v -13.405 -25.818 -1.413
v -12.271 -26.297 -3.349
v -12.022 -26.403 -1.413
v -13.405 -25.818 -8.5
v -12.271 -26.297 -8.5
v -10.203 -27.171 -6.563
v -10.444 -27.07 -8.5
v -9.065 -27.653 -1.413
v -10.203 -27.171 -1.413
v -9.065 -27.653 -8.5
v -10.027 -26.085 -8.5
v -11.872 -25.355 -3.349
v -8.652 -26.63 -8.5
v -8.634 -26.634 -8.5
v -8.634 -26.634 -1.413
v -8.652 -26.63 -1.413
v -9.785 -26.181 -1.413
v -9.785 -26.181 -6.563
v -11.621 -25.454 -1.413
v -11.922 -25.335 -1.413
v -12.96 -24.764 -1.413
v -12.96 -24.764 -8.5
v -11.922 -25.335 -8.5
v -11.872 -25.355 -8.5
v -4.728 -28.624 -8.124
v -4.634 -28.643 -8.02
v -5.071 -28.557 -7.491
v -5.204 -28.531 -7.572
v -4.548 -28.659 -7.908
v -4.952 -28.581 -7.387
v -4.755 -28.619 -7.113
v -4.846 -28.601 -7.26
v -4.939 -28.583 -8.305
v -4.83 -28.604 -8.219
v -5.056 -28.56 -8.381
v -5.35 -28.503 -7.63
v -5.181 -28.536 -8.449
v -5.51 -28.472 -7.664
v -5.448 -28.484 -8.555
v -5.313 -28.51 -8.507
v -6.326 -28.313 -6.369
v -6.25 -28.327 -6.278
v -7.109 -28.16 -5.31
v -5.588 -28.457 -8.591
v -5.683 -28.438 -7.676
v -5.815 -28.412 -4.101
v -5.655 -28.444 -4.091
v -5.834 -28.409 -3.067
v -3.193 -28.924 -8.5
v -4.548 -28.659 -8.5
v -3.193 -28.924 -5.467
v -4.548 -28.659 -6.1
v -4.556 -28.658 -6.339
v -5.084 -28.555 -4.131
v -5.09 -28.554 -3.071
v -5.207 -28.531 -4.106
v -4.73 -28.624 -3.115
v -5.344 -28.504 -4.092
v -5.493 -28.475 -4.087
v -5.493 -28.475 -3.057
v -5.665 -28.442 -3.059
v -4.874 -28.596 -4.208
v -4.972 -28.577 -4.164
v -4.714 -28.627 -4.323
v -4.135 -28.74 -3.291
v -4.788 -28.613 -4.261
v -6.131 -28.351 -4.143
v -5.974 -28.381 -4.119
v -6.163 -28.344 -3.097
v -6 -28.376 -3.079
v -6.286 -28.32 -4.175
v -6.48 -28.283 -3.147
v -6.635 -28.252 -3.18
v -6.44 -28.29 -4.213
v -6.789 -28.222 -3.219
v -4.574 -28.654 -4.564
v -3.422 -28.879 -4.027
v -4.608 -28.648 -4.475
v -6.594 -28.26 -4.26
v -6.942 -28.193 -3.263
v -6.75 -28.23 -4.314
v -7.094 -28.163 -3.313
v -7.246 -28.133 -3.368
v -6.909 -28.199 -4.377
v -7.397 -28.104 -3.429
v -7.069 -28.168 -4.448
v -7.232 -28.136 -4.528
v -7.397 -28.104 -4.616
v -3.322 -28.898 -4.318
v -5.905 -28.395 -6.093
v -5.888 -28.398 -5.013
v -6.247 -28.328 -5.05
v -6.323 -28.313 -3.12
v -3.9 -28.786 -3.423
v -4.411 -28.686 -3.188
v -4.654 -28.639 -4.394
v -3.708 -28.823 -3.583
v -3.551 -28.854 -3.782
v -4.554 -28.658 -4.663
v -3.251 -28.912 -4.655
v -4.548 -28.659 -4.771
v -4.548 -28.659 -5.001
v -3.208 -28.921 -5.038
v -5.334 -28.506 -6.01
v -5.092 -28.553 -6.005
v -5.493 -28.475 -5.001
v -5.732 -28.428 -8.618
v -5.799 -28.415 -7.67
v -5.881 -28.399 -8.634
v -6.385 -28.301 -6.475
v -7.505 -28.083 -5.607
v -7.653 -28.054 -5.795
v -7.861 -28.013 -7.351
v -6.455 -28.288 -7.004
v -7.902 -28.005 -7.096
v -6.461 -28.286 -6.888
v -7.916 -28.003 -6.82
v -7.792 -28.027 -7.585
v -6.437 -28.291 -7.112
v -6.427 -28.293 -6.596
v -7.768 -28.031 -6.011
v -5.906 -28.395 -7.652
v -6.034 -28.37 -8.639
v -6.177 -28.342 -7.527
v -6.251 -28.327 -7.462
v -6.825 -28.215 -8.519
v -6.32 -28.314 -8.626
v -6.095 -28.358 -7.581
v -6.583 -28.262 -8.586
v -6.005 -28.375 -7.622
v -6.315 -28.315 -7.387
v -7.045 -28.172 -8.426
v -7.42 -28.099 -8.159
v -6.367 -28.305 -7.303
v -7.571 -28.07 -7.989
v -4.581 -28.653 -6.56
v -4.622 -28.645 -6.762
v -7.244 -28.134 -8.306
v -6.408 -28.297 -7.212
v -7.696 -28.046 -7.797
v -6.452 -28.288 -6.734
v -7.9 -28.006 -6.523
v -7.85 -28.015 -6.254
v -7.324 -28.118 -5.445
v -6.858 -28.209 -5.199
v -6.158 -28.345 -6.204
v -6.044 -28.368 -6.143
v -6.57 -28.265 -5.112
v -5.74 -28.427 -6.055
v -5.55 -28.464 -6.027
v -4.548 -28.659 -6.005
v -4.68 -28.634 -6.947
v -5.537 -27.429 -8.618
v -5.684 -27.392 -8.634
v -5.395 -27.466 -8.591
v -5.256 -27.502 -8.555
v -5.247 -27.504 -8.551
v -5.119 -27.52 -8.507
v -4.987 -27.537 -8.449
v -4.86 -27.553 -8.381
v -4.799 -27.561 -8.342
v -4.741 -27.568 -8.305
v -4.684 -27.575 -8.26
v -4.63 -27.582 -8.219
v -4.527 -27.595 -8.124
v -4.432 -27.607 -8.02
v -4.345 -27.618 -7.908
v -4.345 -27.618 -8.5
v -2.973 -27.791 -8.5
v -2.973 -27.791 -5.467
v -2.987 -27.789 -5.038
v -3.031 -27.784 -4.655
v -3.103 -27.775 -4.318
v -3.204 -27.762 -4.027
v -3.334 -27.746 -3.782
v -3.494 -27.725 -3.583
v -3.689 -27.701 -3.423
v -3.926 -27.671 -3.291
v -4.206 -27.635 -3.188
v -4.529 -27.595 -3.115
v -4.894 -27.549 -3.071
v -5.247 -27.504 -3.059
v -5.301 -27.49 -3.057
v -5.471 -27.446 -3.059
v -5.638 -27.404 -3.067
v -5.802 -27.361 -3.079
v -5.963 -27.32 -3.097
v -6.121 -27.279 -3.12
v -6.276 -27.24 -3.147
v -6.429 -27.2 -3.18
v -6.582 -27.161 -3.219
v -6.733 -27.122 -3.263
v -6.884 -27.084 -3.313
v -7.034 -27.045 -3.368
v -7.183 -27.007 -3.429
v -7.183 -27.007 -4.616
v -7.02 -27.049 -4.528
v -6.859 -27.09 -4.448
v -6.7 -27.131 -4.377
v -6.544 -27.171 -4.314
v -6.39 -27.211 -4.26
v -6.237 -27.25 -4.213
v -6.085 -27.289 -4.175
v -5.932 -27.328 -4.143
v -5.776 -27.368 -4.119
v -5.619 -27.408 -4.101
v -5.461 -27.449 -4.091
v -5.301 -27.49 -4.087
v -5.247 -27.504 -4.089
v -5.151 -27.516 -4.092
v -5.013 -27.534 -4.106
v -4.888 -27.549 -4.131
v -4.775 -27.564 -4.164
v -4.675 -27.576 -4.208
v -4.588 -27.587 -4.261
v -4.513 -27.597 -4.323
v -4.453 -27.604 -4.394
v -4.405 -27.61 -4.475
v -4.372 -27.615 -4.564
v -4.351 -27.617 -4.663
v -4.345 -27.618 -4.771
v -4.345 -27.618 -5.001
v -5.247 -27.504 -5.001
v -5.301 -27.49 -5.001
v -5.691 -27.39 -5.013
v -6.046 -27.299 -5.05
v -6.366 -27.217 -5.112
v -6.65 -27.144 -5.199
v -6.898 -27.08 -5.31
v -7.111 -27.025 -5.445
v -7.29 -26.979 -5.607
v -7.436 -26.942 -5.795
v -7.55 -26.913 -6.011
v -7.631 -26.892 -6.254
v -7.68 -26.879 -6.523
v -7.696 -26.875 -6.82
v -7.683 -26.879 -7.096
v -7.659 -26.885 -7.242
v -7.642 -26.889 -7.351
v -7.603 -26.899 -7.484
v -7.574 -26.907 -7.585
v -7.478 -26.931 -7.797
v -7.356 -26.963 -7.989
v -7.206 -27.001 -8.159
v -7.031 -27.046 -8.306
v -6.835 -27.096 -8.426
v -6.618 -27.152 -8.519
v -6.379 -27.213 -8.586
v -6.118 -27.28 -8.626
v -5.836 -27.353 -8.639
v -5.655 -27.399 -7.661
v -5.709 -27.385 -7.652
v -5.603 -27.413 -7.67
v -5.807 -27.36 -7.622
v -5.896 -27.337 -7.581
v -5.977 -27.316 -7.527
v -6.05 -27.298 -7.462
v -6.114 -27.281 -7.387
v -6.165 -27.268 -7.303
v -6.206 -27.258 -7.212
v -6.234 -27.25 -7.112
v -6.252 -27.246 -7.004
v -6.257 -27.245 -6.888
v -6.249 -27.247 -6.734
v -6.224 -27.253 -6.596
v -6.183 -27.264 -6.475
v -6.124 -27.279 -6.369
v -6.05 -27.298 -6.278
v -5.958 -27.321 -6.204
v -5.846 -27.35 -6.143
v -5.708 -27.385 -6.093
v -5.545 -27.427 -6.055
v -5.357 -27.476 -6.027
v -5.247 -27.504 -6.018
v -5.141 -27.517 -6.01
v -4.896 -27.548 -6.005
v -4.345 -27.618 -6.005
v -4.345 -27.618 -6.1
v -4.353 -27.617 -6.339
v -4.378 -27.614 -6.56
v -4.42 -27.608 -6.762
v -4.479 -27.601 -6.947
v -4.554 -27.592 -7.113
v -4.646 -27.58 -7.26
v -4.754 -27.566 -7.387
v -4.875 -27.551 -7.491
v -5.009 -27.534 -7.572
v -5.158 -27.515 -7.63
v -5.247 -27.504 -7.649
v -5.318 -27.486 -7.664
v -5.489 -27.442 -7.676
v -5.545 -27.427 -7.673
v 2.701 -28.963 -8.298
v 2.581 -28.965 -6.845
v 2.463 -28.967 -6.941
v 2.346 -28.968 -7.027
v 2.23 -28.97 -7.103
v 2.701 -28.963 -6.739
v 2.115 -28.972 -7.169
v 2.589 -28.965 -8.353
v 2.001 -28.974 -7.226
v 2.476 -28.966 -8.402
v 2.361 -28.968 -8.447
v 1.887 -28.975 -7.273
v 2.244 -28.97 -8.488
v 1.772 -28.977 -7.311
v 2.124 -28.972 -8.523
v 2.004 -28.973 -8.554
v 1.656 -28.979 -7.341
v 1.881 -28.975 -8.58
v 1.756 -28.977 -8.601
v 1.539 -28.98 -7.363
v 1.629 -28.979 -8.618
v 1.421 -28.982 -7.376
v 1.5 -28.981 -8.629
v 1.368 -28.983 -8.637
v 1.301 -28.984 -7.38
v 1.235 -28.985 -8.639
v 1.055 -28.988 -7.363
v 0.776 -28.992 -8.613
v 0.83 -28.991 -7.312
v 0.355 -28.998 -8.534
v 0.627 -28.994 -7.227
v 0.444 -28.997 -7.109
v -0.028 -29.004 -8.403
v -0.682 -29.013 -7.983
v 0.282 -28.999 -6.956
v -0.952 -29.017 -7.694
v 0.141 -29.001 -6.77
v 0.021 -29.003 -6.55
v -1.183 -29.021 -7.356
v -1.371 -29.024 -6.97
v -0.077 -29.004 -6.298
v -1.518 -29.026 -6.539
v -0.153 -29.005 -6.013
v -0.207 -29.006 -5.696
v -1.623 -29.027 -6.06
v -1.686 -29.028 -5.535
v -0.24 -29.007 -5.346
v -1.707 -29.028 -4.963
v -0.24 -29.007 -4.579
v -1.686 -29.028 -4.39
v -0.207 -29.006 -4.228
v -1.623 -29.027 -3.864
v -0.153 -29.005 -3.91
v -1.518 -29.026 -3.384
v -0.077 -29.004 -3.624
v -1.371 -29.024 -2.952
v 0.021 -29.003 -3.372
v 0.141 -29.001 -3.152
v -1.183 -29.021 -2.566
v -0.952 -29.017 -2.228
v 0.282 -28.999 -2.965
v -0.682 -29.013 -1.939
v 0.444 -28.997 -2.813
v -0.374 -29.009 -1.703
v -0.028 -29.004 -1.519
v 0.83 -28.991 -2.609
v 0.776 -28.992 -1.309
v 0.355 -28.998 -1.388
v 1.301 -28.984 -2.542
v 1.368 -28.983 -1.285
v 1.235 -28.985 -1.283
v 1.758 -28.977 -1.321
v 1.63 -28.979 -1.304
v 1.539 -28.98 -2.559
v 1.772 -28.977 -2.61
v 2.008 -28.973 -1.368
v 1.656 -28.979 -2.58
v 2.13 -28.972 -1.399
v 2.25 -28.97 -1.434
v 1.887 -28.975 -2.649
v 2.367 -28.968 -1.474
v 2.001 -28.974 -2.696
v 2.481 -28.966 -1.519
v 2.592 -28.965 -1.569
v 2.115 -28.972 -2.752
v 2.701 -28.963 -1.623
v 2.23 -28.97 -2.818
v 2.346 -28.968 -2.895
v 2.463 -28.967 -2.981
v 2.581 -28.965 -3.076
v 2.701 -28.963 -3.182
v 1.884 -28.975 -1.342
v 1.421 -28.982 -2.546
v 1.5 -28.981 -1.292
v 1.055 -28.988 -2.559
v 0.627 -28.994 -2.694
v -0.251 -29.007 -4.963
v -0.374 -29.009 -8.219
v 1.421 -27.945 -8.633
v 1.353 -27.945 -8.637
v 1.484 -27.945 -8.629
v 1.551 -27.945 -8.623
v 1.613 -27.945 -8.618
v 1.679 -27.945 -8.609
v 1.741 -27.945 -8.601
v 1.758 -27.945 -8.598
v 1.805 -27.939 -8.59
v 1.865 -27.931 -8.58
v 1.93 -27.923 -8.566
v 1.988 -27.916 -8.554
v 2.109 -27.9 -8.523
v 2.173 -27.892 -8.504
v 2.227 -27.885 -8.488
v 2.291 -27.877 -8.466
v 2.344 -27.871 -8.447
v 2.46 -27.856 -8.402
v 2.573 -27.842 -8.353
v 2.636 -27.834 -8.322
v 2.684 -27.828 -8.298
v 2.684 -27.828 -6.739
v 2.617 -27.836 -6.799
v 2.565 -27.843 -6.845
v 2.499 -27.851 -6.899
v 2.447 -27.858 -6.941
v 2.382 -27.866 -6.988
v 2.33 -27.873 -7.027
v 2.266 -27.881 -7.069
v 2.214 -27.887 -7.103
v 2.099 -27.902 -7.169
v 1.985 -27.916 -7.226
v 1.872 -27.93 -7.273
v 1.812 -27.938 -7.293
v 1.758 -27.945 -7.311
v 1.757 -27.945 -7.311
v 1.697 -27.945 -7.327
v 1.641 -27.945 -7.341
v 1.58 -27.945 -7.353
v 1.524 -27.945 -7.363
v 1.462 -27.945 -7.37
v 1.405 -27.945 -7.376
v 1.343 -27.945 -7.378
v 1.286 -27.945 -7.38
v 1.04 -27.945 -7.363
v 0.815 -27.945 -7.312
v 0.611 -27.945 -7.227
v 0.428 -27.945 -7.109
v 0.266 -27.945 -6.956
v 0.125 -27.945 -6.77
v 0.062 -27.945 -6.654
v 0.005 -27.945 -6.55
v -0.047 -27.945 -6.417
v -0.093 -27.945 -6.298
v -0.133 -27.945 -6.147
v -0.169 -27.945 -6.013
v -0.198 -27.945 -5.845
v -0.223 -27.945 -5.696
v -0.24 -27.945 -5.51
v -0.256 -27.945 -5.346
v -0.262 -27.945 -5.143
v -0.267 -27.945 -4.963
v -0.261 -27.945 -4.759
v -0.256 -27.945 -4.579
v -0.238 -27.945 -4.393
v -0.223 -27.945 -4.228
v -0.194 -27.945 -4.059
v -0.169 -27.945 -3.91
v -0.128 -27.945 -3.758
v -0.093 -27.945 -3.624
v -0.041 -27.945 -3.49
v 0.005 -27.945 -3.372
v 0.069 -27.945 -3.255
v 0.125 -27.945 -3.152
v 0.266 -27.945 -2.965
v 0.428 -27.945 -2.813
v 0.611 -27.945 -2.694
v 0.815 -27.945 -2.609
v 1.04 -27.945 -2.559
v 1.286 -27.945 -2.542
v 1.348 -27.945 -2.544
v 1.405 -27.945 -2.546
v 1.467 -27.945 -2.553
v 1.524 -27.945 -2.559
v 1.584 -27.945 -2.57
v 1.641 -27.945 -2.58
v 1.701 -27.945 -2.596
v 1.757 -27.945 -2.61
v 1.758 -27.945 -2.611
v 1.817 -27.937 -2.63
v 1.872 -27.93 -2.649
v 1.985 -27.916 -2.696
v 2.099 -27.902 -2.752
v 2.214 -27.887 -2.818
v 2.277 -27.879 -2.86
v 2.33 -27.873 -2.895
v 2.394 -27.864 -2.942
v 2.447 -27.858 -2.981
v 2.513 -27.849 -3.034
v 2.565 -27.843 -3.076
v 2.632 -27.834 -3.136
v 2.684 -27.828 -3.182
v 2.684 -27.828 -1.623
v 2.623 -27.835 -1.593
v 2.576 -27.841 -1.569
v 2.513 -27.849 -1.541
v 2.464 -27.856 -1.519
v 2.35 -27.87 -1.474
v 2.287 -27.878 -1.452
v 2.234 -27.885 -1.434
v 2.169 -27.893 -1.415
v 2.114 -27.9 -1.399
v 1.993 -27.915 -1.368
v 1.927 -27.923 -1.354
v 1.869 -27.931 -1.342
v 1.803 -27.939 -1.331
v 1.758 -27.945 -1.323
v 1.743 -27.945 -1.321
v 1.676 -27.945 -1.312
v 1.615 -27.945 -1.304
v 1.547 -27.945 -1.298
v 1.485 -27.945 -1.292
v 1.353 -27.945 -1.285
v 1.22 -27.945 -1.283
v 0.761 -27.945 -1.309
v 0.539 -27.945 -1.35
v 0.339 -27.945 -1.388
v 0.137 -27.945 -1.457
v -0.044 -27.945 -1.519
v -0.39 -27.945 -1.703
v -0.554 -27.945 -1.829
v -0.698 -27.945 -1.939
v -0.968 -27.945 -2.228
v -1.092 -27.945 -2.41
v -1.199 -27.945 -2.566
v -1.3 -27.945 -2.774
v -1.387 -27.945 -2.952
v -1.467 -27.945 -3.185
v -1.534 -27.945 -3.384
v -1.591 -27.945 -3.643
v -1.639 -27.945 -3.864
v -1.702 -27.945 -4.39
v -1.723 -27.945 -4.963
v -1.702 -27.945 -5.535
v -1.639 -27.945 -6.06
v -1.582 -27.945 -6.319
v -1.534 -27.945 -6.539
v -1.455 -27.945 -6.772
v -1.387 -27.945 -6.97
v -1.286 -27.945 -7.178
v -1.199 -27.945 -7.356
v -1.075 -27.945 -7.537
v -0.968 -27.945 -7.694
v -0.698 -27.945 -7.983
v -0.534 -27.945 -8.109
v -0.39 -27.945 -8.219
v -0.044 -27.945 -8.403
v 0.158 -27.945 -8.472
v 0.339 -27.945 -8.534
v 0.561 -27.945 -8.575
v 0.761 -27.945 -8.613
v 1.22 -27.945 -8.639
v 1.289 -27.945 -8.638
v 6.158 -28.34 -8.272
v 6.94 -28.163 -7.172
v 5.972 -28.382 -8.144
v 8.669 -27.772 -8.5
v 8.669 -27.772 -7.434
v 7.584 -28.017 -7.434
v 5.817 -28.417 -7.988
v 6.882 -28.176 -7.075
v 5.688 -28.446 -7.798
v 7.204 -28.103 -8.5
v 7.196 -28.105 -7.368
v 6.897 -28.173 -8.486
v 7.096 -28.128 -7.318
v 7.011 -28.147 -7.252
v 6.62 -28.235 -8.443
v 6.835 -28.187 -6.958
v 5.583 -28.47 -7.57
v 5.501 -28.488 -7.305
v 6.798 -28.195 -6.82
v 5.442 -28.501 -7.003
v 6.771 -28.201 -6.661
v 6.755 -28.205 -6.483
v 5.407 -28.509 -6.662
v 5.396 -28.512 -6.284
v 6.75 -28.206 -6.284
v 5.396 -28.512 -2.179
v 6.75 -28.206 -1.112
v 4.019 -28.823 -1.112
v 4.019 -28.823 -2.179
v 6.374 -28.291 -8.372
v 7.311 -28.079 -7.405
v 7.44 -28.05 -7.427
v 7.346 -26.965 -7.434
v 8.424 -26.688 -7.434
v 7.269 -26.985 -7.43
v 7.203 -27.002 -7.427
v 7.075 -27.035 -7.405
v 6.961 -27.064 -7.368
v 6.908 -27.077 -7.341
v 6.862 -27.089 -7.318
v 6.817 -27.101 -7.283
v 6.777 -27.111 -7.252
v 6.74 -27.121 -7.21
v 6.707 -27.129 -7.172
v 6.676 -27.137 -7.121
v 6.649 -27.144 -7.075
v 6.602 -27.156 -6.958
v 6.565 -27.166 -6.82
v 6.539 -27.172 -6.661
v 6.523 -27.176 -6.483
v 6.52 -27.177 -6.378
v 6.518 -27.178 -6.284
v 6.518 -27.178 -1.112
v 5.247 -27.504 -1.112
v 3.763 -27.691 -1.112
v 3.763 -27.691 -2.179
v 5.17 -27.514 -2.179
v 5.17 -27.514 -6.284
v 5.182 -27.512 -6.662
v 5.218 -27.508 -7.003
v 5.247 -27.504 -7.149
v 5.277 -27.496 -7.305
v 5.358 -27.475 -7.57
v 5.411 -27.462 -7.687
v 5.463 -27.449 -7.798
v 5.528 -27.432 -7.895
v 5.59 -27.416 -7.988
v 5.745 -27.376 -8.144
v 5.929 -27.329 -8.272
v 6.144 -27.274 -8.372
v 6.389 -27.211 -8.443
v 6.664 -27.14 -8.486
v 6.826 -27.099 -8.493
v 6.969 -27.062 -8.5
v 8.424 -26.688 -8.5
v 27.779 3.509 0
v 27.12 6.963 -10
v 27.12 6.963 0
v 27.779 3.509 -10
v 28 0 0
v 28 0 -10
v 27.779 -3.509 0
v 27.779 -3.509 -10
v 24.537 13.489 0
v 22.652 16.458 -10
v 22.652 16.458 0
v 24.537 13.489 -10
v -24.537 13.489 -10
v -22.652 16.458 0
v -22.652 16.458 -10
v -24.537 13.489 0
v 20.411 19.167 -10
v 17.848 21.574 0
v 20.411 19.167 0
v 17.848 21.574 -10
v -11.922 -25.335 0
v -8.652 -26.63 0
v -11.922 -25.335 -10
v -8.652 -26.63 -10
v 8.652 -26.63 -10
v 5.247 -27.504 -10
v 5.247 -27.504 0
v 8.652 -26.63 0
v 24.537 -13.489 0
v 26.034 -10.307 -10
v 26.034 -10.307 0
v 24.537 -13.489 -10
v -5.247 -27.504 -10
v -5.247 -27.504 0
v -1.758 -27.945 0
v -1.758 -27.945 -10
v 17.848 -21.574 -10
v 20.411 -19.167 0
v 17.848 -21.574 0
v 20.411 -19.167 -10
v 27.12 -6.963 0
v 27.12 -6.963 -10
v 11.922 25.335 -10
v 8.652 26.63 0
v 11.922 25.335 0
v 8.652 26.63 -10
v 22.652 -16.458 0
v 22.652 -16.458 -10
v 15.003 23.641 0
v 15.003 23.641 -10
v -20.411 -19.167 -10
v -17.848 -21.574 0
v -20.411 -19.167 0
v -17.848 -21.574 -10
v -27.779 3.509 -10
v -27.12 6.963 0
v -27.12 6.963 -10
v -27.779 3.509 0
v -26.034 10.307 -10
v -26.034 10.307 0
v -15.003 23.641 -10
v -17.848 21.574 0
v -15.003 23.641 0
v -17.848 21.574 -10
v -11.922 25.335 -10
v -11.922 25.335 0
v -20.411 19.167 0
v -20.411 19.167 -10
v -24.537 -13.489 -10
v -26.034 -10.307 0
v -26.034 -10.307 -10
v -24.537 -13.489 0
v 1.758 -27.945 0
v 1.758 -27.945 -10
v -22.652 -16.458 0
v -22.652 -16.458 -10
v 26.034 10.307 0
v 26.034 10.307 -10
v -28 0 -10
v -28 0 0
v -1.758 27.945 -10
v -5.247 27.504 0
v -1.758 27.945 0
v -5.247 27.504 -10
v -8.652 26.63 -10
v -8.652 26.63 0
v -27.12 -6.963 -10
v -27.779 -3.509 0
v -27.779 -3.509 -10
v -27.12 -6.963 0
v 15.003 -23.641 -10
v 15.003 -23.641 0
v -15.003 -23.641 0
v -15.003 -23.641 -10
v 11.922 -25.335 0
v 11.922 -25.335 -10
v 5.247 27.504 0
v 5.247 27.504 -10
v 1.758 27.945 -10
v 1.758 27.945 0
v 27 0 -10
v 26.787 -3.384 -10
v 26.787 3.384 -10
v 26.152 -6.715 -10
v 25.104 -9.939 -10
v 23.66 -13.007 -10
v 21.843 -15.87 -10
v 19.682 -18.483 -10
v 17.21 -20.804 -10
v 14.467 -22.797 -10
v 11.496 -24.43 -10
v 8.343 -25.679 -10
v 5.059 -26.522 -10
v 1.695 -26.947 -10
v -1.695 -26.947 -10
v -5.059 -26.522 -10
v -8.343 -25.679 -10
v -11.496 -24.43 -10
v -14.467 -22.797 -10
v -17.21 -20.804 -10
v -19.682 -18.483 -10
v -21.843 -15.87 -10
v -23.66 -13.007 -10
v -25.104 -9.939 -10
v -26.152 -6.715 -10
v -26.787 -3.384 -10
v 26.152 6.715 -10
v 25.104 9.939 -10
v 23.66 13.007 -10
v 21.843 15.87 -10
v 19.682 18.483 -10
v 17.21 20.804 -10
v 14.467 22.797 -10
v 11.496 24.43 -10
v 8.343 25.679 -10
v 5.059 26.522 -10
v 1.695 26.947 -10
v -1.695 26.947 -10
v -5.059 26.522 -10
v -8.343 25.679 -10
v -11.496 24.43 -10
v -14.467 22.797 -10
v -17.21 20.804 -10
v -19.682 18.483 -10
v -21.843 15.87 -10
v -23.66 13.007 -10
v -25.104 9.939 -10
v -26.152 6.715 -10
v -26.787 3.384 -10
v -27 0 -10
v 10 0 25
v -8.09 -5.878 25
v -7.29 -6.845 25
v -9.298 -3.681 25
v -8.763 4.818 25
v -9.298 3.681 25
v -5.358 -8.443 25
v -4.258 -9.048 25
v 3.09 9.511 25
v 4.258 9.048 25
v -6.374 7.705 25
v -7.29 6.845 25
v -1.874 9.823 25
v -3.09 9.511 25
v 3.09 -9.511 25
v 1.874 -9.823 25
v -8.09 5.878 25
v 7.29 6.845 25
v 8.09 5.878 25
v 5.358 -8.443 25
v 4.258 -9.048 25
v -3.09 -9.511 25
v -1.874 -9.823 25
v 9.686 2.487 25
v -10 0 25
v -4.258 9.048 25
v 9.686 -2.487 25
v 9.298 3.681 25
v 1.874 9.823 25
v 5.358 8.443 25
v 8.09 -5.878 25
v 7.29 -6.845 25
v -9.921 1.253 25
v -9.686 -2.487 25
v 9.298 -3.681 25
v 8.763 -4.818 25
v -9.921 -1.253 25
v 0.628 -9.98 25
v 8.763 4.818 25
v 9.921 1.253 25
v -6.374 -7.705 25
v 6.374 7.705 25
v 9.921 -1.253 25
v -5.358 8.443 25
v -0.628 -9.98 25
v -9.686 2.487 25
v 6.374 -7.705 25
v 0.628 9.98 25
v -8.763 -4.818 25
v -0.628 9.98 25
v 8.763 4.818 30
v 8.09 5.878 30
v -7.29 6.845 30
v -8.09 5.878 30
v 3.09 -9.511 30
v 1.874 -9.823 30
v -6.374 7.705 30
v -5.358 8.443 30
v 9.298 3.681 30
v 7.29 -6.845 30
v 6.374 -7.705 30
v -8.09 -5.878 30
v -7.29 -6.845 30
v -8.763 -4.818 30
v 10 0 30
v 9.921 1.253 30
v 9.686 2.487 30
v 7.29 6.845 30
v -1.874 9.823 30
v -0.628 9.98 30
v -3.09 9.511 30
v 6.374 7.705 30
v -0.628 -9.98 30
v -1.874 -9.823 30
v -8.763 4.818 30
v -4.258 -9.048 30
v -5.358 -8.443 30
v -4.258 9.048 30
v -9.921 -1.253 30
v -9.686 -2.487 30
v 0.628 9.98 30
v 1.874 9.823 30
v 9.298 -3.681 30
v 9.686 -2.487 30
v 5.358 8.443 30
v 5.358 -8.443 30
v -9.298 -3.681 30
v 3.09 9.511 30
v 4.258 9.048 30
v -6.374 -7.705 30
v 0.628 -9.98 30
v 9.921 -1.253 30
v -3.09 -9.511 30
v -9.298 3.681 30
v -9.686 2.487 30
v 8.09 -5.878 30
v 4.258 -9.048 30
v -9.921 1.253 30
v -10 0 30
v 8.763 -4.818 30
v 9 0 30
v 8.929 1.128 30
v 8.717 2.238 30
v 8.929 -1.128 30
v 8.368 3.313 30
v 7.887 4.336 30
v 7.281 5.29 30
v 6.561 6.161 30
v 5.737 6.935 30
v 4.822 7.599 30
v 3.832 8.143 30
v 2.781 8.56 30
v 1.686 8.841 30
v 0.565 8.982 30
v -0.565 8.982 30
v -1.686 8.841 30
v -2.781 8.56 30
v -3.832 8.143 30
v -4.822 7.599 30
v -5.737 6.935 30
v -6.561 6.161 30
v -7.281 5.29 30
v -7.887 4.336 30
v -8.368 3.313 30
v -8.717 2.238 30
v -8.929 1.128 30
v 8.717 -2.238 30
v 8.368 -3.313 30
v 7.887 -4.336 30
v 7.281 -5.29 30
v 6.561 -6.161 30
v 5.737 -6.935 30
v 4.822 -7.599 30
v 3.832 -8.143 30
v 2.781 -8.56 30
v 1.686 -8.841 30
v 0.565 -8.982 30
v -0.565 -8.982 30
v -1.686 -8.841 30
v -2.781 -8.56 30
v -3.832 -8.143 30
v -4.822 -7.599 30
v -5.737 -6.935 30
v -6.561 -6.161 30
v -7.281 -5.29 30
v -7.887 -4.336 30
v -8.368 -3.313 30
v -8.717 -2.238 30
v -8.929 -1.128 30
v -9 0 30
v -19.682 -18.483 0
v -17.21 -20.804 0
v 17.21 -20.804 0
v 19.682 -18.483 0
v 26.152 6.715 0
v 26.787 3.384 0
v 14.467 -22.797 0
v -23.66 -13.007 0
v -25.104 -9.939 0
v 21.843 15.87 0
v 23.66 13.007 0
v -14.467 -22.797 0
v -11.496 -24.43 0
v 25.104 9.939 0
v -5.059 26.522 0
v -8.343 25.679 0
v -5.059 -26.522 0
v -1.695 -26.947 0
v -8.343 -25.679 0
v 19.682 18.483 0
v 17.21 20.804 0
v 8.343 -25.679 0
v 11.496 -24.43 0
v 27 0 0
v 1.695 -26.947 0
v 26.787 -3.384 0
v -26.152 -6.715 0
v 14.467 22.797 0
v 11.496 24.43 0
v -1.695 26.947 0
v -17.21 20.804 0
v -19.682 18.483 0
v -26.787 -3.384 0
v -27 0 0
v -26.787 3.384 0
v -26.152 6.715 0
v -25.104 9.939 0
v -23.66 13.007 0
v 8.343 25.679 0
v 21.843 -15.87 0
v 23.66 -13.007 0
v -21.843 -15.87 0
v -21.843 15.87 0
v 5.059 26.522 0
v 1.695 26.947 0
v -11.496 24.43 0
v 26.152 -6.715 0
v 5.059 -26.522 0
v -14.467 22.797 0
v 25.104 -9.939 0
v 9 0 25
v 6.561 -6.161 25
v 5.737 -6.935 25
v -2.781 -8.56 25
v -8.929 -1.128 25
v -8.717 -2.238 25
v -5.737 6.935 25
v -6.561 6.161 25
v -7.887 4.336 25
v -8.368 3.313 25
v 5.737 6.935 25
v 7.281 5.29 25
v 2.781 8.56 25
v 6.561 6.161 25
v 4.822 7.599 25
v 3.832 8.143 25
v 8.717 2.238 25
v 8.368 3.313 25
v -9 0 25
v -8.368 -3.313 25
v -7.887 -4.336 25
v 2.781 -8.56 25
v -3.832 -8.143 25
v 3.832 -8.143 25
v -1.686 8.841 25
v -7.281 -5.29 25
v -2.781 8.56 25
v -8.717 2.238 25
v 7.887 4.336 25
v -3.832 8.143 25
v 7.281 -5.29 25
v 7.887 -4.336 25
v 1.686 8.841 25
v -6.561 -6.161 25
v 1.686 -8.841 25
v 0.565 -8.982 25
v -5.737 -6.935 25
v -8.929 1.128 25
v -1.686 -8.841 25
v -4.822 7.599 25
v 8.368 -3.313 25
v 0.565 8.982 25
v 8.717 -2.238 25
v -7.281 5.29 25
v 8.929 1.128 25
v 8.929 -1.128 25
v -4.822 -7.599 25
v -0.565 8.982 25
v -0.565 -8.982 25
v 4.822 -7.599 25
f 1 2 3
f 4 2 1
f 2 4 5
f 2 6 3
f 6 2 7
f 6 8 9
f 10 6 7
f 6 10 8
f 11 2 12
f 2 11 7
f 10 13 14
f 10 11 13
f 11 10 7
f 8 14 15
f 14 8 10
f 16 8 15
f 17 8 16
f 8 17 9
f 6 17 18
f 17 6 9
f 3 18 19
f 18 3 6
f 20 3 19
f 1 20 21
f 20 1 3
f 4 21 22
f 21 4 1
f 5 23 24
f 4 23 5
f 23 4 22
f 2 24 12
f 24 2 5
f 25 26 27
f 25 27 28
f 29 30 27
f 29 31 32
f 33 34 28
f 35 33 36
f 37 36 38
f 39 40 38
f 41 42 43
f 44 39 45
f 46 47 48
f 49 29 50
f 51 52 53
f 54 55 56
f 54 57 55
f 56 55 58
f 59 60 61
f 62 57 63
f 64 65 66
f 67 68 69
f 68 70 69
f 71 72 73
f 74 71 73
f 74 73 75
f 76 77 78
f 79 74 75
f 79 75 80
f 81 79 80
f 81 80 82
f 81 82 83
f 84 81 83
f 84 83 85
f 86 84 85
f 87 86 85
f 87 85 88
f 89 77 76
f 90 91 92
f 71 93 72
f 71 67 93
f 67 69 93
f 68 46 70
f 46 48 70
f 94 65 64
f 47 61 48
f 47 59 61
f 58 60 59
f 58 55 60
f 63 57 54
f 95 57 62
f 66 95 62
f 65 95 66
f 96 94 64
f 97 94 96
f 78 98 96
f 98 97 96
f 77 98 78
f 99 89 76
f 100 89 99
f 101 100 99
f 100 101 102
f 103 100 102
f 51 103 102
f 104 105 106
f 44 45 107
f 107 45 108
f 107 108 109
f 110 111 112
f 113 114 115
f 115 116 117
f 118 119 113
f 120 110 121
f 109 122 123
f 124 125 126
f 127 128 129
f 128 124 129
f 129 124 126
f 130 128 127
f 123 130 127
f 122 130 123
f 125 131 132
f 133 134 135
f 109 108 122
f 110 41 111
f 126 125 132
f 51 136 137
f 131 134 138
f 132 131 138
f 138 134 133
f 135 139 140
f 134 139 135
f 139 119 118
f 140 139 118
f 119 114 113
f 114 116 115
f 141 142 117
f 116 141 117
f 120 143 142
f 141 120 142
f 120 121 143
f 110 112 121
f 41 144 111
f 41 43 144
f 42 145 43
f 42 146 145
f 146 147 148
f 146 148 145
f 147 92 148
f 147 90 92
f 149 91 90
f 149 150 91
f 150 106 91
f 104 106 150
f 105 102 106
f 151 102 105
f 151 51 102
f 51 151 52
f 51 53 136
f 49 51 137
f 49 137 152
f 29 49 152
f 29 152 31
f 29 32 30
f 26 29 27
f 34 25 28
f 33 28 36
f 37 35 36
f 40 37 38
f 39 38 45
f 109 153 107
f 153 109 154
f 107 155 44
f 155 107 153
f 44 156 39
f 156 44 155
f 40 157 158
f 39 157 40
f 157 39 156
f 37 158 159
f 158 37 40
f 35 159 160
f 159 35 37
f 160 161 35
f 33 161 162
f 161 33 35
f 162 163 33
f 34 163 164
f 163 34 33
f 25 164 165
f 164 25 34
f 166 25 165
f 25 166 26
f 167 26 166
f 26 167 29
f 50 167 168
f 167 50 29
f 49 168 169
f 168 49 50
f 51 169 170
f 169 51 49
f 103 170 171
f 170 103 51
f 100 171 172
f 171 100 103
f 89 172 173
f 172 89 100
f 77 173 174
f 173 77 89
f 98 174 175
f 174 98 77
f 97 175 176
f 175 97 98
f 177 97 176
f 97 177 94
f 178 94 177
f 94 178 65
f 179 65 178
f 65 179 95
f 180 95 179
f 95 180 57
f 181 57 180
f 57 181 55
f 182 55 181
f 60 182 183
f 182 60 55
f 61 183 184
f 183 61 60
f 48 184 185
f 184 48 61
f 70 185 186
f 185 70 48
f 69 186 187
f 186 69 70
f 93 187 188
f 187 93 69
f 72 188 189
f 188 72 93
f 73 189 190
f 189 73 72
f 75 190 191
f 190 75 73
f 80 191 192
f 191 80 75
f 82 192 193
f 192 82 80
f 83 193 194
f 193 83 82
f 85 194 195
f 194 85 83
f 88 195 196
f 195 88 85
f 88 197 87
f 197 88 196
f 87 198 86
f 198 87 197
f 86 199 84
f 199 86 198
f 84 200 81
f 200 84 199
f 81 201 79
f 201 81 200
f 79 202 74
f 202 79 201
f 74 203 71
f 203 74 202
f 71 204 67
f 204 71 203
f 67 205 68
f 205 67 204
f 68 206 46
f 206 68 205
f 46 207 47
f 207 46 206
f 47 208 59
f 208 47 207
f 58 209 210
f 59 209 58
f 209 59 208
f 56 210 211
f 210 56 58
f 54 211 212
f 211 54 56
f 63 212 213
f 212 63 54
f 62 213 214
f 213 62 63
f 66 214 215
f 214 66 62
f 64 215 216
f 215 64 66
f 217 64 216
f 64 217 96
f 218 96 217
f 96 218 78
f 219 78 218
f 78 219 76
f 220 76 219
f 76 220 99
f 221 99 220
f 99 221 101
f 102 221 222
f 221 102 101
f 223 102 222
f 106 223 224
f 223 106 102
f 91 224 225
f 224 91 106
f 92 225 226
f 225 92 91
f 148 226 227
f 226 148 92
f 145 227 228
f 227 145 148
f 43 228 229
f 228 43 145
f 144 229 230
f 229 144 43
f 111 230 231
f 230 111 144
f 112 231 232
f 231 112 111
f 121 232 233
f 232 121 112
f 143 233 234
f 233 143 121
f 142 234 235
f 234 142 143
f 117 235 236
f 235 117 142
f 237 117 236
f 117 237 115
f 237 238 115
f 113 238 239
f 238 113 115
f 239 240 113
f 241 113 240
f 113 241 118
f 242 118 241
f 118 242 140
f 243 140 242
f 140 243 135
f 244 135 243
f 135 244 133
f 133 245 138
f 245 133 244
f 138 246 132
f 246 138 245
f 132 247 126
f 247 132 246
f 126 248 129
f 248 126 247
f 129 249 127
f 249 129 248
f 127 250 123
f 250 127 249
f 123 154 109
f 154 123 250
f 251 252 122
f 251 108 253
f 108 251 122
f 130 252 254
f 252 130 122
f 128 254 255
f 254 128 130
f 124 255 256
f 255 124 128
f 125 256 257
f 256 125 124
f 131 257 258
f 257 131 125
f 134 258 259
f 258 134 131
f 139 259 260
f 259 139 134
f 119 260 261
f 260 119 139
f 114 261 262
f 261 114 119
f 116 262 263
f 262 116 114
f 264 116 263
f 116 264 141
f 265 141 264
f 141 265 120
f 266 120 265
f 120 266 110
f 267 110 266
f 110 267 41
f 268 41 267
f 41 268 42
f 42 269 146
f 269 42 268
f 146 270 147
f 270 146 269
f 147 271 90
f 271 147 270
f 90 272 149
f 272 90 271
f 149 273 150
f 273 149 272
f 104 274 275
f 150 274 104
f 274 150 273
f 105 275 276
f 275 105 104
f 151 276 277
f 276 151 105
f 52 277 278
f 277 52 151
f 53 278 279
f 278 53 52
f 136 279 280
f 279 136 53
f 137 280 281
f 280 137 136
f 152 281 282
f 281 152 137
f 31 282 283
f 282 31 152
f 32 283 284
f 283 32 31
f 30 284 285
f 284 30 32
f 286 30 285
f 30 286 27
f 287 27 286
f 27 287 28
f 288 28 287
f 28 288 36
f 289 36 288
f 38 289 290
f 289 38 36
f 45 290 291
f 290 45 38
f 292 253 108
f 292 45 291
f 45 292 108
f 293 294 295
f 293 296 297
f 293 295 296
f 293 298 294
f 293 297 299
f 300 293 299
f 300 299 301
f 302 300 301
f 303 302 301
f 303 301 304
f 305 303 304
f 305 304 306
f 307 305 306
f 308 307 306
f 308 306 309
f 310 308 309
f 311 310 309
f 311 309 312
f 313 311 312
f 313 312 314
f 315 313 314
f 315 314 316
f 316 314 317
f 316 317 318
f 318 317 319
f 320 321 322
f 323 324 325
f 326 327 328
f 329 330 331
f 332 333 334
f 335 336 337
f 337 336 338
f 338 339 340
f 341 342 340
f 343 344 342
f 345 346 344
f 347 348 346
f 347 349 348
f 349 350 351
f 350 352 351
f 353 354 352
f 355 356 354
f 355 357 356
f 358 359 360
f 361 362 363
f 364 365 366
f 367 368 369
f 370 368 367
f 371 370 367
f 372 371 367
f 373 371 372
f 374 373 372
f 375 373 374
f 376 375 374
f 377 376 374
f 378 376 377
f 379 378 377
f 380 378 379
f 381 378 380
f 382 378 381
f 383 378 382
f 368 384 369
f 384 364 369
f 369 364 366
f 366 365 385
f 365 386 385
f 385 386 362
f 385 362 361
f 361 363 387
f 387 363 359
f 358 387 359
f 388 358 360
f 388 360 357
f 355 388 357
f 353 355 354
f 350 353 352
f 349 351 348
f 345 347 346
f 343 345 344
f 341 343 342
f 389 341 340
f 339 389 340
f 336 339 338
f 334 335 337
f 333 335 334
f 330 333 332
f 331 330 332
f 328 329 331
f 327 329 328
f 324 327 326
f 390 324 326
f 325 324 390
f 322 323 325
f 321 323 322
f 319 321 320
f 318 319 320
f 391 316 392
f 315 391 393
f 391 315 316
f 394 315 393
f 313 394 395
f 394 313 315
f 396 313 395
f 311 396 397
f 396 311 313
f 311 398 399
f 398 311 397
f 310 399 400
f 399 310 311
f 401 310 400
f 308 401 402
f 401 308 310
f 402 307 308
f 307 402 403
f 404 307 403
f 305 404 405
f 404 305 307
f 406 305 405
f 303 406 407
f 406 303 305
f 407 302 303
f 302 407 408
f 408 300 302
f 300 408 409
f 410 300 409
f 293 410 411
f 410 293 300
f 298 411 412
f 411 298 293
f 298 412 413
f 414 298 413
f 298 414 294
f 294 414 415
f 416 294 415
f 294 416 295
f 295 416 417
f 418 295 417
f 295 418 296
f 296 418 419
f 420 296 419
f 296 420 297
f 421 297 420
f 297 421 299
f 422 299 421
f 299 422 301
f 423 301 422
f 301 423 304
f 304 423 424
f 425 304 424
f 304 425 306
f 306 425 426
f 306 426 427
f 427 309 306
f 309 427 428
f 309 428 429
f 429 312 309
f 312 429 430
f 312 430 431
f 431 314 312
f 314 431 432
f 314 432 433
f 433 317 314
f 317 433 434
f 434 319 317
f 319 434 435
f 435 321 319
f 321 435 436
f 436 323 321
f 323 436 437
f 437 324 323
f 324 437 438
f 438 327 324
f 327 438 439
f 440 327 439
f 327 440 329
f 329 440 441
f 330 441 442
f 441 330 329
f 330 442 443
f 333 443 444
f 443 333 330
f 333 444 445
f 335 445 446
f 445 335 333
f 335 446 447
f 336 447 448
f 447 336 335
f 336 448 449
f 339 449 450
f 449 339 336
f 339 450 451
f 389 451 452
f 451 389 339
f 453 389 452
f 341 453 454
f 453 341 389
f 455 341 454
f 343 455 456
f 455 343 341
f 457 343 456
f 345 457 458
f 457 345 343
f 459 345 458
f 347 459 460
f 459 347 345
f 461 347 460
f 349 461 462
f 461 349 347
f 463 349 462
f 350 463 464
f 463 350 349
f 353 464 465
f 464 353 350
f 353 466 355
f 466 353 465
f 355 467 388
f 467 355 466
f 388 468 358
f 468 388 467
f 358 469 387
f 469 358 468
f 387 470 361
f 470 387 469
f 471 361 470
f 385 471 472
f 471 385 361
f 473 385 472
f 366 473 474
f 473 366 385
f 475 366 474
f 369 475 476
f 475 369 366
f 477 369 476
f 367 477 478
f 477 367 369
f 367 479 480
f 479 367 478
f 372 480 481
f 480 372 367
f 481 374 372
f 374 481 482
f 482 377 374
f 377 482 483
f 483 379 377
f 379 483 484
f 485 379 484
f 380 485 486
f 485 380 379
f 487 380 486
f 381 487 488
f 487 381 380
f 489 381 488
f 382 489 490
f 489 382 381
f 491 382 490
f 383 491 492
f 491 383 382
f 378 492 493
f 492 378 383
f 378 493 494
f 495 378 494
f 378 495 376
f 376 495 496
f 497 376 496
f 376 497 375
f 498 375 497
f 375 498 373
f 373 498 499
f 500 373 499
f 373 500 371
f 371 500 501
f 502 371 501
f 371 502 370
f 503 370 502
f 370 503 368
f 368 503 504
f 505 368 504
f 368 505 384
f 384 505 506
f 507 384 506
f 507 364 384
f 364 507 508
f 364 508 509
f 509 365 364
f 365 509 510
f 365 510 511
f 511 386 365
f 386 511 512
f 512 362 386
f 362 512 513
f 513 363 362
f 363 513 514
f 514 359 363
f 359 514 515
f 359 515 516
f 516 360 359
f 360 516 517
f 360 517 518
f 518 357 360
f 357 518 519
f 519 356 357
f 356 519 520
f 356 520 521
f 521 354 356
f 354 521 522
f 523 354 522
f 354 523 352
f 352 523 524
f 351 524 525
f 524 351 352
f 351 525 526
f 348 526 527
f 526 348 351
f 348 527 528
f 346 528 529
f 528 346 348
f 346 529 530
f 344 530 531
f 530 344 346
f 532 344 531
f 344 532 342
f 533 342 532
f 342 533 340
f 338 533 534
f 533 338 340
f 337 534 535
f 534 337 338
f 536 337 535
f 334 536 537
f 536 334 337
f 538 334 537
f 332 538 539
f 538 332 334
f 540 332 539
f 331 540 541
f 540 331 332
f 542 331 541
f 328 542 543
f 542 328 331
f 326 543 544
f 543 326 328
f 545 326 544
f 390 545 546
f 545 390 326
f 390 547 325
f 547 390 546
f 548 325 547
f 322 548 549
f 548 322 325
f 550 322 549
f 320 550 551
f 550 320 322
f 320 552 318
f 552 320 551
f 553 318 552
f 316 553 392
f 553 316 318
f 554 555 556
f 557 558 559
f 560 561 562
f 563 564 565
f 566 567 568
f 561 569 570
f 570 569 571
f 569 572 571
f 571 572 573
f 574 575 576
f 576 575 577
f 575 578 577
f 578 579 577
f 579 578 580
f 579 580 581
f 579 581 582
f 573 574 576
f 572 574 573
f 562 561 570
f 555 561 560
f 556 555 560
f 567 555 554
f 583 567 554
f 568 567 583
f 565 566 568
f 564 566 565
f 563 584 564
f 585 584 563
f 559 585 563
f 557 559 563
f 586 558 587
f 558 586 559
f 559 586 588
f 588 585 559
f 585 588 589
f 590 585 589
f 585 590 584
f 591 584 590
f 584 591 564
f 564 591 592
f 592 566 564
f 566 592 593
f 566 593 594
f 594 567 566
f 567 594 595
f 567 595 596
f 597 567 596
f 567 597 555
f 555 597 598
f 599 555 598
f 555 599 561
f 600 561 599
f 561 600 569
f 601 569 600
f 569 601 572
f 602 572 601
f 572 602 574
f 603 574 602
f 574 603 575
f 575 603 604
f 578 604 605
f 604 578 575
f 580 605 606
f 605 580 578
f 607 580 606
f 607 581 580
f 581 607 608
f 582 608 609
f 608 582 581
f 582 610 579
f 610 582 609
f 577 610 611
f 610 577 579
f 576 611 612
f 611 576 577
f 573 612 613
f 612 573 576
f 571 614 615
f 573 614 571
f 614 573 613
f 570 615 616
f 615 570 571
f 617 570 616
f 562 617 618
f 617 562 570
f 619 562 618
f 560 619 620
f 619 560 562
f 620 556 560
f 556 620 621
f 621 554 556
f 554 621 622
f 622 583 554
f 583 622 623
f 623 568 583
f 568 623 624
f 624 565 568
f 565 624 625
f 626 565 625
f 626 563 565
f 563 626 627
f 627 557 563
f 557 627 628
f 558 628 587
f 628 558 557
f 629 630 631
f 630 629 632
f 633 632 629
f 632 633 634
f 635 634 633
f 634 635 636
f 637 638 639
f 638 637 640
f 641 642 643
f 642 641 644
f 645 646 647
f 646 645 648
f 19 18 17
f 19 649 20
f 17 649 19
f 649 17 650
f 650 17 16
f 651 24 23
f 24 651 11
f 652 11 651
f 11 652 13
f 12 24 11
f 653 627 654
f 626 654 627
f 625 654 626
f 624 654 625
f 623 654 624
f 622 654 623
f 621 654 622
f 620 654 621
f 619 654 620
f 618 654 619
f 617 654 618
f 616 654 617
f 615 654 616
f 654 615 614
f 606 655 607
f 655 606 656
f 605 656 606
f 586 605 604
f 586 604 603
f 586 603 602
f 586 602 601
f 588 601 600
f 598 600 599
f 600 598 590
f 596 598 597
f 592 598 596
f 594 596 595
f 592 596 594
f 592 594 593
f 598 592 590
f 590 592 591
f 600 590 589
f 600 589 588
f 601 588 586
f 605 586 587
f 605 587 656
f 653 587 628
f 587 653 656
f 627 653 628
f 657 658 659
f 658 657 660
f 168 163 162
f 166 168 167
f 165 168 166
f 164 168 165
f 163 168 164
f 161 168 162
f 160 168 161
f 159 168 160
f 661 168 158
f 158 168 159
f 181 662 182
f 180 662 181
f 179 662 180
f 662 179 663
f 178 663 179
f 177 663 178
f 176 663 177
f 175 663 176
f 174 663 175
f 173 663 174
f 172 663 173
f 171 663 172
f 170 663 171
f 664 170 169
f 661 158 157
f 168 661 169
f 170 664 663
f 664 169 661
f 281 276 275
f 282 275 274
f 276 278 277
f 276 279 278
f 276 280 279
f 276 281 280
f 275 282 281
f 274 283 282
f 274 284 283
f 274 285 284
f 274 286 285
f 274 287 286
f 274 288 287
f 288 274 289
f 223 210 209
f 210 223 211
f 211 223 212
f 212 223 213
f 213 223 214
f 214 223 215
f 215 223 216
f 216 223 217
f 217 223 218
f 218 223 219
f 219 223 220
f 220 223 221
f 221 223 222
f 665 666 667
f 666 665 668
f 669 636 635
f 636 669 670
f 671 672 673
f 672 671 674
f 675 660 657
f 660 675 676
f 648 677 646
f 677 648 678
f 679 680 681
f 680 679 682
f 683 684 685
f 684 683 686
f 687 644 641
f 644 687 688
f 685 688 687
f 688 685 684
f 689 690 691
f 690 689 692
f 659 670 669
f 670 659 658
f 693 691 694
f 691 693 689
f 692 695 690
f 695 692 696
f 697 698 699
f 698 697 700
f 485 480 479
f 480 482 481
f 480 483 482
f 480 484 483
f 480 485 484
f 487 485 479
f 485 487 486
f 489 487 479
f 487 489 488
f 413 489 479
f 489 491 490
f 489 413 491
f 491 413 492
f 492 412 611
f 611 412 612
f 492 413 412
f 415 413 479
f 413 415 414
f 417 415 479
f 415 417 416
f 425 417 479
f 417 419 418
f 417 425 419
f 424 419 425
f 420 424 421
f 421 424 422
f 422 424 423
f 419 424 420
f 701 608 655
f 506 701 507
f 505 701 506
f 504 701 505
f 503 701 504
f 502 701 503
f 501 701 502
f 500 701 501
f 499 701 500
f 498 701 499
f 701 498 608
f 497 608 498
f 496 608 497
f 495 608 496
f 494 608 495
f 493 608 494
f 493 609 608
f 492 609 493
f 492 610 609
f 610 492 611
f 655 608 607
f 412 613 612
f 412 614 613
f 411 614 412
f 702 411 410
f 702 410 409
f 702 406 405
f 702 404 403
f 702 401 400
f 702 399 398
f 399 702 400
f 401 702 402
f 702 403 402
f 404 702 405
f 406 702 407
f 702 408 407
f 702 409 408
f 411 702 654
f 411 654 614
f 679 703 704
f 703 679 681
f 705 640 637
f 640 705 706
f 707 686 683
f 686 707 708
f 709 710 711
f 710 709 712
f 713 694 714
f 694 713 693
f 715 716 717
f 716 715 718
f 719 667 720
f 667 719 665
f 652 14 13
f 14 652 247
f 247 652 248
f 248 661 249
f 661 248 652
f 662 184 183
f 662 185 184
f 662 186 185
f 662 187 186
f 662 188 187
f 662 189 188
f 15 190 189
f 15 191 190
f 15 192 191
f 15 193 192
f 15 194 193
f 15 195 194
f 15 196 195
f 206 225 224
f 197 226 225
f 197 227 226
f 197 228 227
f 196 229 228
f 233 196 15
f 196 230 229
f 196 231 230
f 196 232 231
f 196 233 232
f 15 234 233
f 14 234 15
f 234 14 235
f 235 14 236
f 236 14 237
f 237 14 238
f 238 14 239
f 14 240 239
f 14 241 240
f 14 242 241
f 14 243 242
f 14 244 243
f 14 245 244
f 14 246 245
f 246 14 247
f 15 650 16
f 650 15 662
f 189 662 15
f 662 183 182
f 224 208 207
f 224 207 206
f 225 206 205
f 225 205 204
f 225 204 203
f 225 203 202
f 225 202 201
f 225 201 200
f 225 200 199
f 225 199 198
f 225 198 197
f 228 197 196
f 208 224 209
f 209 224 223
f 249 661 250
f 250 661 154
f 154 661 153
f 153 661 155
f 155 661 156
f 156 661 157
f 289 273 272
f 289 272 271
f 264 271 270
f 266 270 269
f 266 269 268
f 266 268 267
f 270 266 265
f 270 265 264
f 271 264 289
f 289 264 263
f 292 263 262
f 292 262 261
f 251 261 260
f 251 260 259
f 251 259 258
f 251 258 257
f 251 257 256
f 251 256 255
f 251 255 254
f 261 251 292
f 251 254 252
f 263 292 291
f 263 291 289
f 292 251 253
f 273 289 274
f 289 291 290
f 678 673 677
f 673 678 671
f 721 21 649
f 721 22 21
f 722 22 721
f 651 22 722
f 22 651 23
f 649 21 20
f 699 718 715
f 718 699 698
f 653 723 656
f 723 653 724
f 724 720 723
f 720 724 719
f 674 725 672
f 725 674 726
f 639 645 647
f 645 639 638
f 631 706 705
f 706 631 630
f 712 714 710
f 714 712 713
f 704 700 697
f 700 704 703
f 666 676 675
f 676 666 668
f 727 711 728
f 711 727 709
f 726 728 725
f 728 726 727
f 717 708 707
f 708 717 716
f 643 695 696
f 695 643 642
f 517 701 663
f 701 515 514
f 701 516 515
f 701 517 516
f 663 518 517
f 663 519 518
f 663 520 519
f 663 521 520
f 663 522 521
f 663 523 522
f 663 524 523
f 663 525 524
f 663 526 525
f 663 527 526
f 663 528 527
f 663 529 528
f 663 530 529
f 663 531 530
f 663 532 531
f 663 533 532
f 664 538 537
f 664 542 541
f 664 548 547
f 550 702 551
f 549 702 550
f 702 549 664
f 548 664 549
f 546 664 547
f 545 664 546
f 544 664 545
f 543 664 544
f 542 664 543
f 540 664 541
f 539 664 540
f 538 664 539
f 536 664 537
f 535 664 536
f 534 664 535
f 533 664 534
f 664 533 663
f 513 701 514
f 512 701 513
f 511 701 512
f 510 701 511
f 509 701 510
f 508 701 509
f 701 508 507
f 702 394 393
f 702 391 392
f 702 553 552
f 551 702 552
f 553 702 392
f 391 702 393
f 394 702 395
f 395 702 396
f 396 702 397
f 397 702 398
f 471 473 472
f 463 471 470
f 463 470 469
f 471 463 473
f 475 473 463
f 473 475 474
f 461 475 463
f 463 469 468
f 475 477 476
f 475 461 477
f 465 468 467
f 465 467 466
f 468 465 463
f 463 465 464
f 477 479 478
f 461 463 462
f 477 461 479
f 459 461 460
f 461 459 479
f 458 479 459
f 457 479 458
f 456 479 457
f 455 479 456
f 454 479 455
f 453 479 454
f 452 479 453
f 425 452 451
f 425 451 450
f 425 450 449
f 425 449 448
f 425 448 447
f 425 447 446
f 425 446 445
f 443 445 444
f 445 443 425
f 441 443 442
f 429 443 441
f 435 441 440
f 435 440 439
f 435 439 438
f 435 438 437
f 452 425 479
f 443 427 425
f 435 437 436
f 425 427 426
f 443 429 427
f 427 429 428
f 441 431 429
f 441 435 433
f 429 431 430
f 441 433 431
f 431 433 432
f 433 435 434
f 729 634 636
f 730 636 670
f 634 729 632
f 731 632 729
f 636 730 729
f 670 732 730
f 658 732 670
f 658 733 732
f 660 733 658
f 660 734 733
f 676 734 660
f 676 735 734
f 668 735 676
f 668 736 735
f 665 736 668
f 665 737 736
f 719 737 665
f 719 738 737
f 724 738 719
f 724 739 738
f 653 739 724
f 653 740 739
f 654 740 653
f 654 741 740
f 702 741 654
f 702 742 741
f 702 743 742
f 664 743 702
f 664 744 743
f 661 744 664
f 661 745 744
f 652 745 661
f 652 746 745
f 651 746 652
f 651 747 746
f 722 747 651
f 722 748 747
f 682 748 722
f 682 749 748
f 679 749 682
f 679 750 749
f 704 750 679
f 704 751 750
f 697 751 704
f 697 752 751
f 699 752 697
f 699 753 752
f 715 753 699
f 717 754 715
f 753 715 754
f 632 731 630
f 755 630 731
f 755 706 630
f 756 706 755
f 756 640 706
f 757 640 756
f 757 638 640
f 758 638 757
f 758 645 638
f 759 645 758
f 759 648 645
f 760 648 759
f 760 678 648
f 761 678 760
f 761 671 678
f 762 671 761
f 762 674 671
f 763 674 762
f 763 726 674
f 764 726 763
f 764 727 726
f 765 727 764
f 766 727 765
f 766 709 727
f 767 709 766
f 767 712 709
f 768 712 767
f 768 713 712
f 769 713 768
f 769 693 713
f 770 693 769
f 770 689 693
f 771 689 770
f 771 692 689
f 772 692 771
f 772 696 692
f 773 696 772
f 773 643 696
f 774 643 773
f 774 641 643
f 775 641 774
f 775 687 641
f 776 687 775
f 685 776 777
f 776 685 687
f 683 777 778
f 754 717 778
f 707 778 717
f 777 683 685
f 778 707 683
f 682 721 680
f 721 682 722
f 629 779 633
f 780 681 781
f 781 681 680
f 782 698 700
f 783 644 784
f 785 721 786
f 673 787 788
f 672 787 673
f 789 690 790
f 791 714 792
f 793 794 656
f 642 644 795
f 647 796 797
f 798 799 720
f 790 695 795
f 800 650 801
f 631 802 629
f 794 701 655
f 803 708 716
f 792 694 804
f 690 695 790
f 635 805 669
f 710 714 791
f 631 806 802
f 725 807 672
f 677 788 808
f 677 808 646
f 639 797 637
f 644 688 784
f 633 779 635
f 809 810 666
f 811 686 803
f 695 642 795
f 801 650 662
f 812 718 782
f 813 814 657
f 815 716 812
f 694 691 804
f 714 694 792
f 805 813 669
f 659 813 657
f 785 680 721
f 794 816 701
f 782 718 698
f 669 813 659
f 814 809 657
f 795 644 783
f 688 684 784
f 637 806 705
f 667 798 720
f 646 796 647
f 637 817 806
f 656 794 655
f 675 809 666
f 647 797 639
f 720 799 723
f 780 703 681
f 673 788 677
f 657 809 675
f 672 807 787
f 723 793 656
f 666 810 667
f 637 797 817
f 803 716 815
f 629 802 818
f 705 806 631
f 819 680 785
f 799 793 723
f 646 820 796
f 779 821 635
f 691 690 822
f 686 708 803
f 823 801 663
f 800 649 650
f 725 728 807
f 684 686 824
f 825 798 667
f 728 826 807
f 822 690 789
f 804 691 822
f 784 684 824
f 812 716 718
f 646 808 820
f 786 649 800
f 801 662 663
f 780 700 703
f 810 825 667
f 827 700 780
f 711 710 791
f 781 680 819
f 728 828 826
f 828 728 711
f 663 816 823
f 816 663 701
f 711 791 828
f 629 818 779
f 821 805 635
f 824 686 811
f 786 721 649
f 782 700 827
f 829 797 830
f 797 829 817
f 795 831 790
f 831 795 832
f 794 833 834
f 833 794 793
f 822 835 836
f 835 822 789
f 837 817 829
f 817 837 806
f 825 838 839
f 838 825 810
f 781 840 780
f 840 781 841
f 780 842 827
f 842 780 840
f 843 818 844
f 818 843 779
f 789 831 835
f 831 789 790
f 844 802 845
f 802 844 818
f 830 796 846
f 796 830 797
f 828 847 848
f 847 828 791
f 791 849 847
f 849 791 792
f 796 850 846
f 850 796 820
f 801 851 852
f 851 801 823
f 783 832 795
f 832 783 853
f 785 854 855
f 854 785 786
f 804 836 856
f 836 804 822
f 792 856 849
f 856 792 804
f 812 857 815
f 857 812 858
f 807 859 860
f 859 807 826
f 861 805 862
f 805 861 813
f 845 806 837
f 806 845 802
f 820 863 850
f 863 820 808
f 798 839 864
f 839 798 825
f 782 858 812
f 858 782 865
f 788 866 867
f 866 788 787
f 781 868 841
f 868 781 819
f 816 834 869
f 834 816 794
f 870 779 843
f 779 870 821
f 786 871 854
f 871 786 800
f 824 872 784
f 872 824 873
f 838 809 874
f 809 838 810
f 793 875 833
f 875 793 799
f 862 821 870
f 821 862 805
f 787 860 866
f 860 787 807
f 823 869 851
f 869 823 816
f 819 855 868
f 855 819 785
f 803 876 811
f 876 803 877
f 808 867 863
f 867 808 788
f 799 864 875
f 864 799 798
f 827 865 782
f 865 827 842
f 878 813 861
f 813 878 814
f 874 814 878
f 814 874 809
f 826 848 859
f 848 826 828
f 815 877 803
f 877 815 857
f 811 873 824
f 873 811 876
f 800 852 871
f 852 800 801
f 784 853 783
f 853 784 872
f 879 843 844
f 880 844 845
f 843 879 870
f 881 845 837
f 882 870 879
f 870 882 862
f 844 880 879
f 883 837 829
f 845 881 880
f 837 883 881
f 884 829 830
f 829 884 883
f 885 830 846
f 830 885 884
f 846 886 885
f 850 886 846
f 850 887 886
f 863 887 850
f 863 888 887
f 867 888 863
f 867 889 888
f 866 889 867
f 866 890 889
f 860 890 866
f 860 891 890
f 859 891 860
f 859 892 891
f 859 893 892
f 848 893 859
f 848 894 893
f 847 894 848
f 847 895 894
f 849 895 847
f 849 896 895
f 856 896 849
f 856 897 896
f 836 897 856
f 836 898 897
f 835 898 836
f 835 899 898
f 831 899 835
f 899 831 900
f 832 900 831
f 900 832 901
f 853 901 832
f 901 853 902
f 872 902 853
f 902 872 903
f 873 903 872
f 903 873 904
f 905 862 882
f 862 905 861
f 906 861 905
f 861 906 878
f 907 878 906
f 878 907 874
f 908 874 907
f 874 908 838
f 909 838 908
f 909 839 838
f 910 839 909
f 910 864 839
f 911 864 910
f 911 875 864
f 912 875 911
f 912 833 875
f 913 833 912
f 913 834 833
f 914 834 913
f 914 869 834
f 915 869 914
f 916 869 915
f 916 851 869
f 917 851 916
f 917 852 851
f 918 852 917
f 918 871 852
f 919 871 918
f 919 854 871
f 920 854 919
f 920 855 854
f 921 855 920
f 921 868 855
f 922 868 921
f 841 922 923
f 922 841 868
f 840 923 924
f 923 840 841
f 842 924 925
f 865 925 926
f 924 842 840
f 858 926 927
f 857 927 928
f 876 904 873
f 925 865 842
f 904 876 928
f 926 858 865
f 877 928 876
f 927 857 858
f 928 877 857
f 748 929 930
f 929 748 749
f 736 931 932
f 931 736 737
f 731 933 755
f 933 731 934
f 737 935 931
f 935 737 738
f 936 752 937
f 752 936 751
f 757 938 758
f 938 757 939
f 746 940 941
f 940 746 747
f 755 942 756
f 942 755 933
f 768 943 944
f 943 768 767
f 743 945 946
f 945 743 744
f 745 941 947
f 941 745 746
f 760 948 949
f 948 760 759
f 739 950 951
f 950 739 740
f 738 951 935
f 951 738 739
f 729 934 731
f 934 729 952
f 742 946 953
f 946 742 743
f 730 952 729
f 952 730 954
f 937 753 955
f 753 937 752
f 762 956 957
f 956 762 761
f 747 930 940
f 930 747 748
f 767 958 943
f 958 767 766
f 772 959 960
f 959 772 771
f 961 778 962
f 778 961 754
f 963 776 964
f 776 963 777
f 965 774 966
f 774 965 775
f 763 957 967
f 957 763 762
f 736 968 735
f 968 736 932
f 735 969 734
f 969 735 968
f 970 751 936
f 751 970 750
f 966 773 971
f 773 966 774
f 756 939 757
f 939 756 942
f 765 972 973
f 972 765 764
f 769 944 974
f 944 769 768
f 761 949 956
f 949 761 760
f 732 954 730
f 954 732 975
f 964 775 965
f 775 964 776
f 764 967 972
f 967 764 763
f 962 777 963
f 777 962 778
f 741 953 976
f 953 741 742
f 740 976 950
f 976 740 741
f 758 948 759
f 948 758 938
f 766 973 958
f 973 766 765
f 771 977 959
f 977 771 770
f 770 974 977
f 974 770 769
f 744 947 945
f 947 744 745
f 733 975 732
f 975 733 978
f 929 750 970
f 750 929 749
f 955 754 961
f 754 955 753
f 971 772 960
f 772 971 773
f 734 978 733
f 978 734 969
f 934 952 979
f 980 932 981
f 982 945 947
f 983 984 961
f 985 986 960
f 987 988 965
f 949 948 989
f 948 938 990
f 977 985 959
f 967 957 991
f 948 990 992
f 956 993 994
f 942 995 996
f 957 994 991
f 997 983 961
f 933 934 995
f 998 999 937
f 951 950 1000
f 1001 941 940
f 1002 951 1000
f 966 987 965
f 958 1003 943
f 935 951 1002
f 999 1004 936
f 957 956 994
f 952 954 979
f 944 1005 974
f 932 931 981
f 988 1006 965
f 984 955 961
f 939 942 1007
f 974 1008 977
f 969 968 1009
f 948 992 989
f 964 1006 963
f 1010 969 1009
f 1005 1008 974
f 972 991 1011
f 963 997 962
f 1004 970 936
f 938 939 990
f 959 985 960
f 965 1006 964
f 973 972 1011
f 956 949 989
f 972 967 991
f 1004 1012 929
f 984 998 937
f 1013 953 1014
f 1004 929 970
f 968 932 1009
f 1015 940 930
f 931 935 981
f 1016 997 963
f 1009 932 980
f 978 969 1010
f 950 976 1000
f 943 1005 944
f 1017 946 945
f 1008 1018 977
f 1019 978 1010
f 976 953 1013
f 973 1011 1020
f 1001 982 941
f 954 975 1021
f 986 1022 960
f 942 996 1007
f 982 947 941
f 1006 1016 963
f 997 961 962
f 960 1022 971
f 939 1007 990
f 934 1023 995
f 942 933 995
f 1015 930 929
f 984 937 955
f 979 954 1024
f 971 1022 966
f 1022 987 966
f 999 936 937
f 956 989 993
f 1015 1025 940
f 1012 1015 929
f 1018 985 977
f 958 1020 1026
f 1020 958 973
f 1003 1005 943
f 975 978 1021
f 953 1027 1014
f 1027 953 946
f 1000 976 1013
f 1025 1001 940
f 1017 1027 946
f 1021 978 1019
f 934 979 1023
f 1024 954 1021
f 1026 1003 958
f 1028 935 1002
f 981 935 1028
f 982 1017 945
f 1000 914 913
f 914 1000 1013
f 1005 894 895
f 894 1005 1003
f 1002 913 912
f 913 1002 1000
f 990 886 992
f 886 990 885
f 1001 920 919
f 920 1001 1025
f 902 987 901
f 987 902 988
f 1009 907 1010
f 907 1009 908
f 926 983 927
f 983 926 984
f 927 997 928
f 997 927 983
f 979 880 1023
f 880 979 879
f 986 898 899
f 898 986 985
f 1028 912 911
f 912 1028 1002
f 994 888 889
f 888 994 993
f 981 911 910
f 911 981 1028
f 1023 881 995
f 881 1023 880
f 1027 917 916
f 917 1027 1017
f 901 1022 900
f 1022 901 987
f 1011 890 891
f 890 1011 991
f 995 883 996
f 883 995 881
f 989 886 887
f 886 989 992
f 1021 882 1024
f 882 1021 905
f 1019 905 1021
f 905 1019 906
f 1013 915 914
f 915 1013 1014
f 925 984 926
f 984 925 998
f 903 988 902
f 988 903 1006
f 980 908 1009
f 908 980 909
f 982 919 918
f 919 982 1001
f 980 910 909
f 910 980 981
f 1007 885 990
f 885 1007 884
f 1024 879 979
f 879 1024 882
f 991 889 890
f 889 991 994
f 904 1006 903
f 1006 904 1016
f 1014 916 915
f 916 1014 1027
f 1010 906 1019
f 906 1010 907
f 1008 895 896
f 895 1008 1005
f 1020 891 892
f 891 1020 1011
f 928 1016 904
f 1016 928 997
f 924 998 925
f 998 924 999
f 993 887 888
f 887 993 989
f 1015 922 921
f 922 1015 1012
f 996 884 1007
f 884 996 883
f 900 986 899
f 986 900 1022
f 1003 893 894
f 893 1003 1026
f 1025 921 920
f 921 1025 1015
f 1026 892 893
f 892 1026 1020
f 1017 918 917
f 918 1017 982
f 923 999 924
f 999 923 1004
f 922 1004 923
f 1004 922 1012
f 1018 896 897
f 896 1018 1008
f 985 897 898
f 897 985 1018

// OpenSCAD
$fn=50;

use <utils/text_on.scad>

module ring(r1, r2) {
    rotate_extrude() translate([r1,0,0]) circle(r2);
}

difference() {
    union() {
        //top tube
        translate([0, 0, -10]) cylinder(h = 10, r=28);
        //top funnel
        cylinder(h = 25, r1=28, r2=10);
        //bottom tube
        translate([0, 0, 25]) cylinder(h = 5, r=10);
    }
    union() {
        translate([0, 0, -10]) cylinder(h = 10, r=27);
        cylinder(h = 25, r1=27, r2=9);
        translate([0, 0, 25]) cylinder(h = 5, r=9);
    }
}

translate([0, 0, -10]) text_on_cylinder(t="NaCl", r=28, h=10, extrusion_height=2, size=7, font="DejaVu Sans Mono:style=Bold");
